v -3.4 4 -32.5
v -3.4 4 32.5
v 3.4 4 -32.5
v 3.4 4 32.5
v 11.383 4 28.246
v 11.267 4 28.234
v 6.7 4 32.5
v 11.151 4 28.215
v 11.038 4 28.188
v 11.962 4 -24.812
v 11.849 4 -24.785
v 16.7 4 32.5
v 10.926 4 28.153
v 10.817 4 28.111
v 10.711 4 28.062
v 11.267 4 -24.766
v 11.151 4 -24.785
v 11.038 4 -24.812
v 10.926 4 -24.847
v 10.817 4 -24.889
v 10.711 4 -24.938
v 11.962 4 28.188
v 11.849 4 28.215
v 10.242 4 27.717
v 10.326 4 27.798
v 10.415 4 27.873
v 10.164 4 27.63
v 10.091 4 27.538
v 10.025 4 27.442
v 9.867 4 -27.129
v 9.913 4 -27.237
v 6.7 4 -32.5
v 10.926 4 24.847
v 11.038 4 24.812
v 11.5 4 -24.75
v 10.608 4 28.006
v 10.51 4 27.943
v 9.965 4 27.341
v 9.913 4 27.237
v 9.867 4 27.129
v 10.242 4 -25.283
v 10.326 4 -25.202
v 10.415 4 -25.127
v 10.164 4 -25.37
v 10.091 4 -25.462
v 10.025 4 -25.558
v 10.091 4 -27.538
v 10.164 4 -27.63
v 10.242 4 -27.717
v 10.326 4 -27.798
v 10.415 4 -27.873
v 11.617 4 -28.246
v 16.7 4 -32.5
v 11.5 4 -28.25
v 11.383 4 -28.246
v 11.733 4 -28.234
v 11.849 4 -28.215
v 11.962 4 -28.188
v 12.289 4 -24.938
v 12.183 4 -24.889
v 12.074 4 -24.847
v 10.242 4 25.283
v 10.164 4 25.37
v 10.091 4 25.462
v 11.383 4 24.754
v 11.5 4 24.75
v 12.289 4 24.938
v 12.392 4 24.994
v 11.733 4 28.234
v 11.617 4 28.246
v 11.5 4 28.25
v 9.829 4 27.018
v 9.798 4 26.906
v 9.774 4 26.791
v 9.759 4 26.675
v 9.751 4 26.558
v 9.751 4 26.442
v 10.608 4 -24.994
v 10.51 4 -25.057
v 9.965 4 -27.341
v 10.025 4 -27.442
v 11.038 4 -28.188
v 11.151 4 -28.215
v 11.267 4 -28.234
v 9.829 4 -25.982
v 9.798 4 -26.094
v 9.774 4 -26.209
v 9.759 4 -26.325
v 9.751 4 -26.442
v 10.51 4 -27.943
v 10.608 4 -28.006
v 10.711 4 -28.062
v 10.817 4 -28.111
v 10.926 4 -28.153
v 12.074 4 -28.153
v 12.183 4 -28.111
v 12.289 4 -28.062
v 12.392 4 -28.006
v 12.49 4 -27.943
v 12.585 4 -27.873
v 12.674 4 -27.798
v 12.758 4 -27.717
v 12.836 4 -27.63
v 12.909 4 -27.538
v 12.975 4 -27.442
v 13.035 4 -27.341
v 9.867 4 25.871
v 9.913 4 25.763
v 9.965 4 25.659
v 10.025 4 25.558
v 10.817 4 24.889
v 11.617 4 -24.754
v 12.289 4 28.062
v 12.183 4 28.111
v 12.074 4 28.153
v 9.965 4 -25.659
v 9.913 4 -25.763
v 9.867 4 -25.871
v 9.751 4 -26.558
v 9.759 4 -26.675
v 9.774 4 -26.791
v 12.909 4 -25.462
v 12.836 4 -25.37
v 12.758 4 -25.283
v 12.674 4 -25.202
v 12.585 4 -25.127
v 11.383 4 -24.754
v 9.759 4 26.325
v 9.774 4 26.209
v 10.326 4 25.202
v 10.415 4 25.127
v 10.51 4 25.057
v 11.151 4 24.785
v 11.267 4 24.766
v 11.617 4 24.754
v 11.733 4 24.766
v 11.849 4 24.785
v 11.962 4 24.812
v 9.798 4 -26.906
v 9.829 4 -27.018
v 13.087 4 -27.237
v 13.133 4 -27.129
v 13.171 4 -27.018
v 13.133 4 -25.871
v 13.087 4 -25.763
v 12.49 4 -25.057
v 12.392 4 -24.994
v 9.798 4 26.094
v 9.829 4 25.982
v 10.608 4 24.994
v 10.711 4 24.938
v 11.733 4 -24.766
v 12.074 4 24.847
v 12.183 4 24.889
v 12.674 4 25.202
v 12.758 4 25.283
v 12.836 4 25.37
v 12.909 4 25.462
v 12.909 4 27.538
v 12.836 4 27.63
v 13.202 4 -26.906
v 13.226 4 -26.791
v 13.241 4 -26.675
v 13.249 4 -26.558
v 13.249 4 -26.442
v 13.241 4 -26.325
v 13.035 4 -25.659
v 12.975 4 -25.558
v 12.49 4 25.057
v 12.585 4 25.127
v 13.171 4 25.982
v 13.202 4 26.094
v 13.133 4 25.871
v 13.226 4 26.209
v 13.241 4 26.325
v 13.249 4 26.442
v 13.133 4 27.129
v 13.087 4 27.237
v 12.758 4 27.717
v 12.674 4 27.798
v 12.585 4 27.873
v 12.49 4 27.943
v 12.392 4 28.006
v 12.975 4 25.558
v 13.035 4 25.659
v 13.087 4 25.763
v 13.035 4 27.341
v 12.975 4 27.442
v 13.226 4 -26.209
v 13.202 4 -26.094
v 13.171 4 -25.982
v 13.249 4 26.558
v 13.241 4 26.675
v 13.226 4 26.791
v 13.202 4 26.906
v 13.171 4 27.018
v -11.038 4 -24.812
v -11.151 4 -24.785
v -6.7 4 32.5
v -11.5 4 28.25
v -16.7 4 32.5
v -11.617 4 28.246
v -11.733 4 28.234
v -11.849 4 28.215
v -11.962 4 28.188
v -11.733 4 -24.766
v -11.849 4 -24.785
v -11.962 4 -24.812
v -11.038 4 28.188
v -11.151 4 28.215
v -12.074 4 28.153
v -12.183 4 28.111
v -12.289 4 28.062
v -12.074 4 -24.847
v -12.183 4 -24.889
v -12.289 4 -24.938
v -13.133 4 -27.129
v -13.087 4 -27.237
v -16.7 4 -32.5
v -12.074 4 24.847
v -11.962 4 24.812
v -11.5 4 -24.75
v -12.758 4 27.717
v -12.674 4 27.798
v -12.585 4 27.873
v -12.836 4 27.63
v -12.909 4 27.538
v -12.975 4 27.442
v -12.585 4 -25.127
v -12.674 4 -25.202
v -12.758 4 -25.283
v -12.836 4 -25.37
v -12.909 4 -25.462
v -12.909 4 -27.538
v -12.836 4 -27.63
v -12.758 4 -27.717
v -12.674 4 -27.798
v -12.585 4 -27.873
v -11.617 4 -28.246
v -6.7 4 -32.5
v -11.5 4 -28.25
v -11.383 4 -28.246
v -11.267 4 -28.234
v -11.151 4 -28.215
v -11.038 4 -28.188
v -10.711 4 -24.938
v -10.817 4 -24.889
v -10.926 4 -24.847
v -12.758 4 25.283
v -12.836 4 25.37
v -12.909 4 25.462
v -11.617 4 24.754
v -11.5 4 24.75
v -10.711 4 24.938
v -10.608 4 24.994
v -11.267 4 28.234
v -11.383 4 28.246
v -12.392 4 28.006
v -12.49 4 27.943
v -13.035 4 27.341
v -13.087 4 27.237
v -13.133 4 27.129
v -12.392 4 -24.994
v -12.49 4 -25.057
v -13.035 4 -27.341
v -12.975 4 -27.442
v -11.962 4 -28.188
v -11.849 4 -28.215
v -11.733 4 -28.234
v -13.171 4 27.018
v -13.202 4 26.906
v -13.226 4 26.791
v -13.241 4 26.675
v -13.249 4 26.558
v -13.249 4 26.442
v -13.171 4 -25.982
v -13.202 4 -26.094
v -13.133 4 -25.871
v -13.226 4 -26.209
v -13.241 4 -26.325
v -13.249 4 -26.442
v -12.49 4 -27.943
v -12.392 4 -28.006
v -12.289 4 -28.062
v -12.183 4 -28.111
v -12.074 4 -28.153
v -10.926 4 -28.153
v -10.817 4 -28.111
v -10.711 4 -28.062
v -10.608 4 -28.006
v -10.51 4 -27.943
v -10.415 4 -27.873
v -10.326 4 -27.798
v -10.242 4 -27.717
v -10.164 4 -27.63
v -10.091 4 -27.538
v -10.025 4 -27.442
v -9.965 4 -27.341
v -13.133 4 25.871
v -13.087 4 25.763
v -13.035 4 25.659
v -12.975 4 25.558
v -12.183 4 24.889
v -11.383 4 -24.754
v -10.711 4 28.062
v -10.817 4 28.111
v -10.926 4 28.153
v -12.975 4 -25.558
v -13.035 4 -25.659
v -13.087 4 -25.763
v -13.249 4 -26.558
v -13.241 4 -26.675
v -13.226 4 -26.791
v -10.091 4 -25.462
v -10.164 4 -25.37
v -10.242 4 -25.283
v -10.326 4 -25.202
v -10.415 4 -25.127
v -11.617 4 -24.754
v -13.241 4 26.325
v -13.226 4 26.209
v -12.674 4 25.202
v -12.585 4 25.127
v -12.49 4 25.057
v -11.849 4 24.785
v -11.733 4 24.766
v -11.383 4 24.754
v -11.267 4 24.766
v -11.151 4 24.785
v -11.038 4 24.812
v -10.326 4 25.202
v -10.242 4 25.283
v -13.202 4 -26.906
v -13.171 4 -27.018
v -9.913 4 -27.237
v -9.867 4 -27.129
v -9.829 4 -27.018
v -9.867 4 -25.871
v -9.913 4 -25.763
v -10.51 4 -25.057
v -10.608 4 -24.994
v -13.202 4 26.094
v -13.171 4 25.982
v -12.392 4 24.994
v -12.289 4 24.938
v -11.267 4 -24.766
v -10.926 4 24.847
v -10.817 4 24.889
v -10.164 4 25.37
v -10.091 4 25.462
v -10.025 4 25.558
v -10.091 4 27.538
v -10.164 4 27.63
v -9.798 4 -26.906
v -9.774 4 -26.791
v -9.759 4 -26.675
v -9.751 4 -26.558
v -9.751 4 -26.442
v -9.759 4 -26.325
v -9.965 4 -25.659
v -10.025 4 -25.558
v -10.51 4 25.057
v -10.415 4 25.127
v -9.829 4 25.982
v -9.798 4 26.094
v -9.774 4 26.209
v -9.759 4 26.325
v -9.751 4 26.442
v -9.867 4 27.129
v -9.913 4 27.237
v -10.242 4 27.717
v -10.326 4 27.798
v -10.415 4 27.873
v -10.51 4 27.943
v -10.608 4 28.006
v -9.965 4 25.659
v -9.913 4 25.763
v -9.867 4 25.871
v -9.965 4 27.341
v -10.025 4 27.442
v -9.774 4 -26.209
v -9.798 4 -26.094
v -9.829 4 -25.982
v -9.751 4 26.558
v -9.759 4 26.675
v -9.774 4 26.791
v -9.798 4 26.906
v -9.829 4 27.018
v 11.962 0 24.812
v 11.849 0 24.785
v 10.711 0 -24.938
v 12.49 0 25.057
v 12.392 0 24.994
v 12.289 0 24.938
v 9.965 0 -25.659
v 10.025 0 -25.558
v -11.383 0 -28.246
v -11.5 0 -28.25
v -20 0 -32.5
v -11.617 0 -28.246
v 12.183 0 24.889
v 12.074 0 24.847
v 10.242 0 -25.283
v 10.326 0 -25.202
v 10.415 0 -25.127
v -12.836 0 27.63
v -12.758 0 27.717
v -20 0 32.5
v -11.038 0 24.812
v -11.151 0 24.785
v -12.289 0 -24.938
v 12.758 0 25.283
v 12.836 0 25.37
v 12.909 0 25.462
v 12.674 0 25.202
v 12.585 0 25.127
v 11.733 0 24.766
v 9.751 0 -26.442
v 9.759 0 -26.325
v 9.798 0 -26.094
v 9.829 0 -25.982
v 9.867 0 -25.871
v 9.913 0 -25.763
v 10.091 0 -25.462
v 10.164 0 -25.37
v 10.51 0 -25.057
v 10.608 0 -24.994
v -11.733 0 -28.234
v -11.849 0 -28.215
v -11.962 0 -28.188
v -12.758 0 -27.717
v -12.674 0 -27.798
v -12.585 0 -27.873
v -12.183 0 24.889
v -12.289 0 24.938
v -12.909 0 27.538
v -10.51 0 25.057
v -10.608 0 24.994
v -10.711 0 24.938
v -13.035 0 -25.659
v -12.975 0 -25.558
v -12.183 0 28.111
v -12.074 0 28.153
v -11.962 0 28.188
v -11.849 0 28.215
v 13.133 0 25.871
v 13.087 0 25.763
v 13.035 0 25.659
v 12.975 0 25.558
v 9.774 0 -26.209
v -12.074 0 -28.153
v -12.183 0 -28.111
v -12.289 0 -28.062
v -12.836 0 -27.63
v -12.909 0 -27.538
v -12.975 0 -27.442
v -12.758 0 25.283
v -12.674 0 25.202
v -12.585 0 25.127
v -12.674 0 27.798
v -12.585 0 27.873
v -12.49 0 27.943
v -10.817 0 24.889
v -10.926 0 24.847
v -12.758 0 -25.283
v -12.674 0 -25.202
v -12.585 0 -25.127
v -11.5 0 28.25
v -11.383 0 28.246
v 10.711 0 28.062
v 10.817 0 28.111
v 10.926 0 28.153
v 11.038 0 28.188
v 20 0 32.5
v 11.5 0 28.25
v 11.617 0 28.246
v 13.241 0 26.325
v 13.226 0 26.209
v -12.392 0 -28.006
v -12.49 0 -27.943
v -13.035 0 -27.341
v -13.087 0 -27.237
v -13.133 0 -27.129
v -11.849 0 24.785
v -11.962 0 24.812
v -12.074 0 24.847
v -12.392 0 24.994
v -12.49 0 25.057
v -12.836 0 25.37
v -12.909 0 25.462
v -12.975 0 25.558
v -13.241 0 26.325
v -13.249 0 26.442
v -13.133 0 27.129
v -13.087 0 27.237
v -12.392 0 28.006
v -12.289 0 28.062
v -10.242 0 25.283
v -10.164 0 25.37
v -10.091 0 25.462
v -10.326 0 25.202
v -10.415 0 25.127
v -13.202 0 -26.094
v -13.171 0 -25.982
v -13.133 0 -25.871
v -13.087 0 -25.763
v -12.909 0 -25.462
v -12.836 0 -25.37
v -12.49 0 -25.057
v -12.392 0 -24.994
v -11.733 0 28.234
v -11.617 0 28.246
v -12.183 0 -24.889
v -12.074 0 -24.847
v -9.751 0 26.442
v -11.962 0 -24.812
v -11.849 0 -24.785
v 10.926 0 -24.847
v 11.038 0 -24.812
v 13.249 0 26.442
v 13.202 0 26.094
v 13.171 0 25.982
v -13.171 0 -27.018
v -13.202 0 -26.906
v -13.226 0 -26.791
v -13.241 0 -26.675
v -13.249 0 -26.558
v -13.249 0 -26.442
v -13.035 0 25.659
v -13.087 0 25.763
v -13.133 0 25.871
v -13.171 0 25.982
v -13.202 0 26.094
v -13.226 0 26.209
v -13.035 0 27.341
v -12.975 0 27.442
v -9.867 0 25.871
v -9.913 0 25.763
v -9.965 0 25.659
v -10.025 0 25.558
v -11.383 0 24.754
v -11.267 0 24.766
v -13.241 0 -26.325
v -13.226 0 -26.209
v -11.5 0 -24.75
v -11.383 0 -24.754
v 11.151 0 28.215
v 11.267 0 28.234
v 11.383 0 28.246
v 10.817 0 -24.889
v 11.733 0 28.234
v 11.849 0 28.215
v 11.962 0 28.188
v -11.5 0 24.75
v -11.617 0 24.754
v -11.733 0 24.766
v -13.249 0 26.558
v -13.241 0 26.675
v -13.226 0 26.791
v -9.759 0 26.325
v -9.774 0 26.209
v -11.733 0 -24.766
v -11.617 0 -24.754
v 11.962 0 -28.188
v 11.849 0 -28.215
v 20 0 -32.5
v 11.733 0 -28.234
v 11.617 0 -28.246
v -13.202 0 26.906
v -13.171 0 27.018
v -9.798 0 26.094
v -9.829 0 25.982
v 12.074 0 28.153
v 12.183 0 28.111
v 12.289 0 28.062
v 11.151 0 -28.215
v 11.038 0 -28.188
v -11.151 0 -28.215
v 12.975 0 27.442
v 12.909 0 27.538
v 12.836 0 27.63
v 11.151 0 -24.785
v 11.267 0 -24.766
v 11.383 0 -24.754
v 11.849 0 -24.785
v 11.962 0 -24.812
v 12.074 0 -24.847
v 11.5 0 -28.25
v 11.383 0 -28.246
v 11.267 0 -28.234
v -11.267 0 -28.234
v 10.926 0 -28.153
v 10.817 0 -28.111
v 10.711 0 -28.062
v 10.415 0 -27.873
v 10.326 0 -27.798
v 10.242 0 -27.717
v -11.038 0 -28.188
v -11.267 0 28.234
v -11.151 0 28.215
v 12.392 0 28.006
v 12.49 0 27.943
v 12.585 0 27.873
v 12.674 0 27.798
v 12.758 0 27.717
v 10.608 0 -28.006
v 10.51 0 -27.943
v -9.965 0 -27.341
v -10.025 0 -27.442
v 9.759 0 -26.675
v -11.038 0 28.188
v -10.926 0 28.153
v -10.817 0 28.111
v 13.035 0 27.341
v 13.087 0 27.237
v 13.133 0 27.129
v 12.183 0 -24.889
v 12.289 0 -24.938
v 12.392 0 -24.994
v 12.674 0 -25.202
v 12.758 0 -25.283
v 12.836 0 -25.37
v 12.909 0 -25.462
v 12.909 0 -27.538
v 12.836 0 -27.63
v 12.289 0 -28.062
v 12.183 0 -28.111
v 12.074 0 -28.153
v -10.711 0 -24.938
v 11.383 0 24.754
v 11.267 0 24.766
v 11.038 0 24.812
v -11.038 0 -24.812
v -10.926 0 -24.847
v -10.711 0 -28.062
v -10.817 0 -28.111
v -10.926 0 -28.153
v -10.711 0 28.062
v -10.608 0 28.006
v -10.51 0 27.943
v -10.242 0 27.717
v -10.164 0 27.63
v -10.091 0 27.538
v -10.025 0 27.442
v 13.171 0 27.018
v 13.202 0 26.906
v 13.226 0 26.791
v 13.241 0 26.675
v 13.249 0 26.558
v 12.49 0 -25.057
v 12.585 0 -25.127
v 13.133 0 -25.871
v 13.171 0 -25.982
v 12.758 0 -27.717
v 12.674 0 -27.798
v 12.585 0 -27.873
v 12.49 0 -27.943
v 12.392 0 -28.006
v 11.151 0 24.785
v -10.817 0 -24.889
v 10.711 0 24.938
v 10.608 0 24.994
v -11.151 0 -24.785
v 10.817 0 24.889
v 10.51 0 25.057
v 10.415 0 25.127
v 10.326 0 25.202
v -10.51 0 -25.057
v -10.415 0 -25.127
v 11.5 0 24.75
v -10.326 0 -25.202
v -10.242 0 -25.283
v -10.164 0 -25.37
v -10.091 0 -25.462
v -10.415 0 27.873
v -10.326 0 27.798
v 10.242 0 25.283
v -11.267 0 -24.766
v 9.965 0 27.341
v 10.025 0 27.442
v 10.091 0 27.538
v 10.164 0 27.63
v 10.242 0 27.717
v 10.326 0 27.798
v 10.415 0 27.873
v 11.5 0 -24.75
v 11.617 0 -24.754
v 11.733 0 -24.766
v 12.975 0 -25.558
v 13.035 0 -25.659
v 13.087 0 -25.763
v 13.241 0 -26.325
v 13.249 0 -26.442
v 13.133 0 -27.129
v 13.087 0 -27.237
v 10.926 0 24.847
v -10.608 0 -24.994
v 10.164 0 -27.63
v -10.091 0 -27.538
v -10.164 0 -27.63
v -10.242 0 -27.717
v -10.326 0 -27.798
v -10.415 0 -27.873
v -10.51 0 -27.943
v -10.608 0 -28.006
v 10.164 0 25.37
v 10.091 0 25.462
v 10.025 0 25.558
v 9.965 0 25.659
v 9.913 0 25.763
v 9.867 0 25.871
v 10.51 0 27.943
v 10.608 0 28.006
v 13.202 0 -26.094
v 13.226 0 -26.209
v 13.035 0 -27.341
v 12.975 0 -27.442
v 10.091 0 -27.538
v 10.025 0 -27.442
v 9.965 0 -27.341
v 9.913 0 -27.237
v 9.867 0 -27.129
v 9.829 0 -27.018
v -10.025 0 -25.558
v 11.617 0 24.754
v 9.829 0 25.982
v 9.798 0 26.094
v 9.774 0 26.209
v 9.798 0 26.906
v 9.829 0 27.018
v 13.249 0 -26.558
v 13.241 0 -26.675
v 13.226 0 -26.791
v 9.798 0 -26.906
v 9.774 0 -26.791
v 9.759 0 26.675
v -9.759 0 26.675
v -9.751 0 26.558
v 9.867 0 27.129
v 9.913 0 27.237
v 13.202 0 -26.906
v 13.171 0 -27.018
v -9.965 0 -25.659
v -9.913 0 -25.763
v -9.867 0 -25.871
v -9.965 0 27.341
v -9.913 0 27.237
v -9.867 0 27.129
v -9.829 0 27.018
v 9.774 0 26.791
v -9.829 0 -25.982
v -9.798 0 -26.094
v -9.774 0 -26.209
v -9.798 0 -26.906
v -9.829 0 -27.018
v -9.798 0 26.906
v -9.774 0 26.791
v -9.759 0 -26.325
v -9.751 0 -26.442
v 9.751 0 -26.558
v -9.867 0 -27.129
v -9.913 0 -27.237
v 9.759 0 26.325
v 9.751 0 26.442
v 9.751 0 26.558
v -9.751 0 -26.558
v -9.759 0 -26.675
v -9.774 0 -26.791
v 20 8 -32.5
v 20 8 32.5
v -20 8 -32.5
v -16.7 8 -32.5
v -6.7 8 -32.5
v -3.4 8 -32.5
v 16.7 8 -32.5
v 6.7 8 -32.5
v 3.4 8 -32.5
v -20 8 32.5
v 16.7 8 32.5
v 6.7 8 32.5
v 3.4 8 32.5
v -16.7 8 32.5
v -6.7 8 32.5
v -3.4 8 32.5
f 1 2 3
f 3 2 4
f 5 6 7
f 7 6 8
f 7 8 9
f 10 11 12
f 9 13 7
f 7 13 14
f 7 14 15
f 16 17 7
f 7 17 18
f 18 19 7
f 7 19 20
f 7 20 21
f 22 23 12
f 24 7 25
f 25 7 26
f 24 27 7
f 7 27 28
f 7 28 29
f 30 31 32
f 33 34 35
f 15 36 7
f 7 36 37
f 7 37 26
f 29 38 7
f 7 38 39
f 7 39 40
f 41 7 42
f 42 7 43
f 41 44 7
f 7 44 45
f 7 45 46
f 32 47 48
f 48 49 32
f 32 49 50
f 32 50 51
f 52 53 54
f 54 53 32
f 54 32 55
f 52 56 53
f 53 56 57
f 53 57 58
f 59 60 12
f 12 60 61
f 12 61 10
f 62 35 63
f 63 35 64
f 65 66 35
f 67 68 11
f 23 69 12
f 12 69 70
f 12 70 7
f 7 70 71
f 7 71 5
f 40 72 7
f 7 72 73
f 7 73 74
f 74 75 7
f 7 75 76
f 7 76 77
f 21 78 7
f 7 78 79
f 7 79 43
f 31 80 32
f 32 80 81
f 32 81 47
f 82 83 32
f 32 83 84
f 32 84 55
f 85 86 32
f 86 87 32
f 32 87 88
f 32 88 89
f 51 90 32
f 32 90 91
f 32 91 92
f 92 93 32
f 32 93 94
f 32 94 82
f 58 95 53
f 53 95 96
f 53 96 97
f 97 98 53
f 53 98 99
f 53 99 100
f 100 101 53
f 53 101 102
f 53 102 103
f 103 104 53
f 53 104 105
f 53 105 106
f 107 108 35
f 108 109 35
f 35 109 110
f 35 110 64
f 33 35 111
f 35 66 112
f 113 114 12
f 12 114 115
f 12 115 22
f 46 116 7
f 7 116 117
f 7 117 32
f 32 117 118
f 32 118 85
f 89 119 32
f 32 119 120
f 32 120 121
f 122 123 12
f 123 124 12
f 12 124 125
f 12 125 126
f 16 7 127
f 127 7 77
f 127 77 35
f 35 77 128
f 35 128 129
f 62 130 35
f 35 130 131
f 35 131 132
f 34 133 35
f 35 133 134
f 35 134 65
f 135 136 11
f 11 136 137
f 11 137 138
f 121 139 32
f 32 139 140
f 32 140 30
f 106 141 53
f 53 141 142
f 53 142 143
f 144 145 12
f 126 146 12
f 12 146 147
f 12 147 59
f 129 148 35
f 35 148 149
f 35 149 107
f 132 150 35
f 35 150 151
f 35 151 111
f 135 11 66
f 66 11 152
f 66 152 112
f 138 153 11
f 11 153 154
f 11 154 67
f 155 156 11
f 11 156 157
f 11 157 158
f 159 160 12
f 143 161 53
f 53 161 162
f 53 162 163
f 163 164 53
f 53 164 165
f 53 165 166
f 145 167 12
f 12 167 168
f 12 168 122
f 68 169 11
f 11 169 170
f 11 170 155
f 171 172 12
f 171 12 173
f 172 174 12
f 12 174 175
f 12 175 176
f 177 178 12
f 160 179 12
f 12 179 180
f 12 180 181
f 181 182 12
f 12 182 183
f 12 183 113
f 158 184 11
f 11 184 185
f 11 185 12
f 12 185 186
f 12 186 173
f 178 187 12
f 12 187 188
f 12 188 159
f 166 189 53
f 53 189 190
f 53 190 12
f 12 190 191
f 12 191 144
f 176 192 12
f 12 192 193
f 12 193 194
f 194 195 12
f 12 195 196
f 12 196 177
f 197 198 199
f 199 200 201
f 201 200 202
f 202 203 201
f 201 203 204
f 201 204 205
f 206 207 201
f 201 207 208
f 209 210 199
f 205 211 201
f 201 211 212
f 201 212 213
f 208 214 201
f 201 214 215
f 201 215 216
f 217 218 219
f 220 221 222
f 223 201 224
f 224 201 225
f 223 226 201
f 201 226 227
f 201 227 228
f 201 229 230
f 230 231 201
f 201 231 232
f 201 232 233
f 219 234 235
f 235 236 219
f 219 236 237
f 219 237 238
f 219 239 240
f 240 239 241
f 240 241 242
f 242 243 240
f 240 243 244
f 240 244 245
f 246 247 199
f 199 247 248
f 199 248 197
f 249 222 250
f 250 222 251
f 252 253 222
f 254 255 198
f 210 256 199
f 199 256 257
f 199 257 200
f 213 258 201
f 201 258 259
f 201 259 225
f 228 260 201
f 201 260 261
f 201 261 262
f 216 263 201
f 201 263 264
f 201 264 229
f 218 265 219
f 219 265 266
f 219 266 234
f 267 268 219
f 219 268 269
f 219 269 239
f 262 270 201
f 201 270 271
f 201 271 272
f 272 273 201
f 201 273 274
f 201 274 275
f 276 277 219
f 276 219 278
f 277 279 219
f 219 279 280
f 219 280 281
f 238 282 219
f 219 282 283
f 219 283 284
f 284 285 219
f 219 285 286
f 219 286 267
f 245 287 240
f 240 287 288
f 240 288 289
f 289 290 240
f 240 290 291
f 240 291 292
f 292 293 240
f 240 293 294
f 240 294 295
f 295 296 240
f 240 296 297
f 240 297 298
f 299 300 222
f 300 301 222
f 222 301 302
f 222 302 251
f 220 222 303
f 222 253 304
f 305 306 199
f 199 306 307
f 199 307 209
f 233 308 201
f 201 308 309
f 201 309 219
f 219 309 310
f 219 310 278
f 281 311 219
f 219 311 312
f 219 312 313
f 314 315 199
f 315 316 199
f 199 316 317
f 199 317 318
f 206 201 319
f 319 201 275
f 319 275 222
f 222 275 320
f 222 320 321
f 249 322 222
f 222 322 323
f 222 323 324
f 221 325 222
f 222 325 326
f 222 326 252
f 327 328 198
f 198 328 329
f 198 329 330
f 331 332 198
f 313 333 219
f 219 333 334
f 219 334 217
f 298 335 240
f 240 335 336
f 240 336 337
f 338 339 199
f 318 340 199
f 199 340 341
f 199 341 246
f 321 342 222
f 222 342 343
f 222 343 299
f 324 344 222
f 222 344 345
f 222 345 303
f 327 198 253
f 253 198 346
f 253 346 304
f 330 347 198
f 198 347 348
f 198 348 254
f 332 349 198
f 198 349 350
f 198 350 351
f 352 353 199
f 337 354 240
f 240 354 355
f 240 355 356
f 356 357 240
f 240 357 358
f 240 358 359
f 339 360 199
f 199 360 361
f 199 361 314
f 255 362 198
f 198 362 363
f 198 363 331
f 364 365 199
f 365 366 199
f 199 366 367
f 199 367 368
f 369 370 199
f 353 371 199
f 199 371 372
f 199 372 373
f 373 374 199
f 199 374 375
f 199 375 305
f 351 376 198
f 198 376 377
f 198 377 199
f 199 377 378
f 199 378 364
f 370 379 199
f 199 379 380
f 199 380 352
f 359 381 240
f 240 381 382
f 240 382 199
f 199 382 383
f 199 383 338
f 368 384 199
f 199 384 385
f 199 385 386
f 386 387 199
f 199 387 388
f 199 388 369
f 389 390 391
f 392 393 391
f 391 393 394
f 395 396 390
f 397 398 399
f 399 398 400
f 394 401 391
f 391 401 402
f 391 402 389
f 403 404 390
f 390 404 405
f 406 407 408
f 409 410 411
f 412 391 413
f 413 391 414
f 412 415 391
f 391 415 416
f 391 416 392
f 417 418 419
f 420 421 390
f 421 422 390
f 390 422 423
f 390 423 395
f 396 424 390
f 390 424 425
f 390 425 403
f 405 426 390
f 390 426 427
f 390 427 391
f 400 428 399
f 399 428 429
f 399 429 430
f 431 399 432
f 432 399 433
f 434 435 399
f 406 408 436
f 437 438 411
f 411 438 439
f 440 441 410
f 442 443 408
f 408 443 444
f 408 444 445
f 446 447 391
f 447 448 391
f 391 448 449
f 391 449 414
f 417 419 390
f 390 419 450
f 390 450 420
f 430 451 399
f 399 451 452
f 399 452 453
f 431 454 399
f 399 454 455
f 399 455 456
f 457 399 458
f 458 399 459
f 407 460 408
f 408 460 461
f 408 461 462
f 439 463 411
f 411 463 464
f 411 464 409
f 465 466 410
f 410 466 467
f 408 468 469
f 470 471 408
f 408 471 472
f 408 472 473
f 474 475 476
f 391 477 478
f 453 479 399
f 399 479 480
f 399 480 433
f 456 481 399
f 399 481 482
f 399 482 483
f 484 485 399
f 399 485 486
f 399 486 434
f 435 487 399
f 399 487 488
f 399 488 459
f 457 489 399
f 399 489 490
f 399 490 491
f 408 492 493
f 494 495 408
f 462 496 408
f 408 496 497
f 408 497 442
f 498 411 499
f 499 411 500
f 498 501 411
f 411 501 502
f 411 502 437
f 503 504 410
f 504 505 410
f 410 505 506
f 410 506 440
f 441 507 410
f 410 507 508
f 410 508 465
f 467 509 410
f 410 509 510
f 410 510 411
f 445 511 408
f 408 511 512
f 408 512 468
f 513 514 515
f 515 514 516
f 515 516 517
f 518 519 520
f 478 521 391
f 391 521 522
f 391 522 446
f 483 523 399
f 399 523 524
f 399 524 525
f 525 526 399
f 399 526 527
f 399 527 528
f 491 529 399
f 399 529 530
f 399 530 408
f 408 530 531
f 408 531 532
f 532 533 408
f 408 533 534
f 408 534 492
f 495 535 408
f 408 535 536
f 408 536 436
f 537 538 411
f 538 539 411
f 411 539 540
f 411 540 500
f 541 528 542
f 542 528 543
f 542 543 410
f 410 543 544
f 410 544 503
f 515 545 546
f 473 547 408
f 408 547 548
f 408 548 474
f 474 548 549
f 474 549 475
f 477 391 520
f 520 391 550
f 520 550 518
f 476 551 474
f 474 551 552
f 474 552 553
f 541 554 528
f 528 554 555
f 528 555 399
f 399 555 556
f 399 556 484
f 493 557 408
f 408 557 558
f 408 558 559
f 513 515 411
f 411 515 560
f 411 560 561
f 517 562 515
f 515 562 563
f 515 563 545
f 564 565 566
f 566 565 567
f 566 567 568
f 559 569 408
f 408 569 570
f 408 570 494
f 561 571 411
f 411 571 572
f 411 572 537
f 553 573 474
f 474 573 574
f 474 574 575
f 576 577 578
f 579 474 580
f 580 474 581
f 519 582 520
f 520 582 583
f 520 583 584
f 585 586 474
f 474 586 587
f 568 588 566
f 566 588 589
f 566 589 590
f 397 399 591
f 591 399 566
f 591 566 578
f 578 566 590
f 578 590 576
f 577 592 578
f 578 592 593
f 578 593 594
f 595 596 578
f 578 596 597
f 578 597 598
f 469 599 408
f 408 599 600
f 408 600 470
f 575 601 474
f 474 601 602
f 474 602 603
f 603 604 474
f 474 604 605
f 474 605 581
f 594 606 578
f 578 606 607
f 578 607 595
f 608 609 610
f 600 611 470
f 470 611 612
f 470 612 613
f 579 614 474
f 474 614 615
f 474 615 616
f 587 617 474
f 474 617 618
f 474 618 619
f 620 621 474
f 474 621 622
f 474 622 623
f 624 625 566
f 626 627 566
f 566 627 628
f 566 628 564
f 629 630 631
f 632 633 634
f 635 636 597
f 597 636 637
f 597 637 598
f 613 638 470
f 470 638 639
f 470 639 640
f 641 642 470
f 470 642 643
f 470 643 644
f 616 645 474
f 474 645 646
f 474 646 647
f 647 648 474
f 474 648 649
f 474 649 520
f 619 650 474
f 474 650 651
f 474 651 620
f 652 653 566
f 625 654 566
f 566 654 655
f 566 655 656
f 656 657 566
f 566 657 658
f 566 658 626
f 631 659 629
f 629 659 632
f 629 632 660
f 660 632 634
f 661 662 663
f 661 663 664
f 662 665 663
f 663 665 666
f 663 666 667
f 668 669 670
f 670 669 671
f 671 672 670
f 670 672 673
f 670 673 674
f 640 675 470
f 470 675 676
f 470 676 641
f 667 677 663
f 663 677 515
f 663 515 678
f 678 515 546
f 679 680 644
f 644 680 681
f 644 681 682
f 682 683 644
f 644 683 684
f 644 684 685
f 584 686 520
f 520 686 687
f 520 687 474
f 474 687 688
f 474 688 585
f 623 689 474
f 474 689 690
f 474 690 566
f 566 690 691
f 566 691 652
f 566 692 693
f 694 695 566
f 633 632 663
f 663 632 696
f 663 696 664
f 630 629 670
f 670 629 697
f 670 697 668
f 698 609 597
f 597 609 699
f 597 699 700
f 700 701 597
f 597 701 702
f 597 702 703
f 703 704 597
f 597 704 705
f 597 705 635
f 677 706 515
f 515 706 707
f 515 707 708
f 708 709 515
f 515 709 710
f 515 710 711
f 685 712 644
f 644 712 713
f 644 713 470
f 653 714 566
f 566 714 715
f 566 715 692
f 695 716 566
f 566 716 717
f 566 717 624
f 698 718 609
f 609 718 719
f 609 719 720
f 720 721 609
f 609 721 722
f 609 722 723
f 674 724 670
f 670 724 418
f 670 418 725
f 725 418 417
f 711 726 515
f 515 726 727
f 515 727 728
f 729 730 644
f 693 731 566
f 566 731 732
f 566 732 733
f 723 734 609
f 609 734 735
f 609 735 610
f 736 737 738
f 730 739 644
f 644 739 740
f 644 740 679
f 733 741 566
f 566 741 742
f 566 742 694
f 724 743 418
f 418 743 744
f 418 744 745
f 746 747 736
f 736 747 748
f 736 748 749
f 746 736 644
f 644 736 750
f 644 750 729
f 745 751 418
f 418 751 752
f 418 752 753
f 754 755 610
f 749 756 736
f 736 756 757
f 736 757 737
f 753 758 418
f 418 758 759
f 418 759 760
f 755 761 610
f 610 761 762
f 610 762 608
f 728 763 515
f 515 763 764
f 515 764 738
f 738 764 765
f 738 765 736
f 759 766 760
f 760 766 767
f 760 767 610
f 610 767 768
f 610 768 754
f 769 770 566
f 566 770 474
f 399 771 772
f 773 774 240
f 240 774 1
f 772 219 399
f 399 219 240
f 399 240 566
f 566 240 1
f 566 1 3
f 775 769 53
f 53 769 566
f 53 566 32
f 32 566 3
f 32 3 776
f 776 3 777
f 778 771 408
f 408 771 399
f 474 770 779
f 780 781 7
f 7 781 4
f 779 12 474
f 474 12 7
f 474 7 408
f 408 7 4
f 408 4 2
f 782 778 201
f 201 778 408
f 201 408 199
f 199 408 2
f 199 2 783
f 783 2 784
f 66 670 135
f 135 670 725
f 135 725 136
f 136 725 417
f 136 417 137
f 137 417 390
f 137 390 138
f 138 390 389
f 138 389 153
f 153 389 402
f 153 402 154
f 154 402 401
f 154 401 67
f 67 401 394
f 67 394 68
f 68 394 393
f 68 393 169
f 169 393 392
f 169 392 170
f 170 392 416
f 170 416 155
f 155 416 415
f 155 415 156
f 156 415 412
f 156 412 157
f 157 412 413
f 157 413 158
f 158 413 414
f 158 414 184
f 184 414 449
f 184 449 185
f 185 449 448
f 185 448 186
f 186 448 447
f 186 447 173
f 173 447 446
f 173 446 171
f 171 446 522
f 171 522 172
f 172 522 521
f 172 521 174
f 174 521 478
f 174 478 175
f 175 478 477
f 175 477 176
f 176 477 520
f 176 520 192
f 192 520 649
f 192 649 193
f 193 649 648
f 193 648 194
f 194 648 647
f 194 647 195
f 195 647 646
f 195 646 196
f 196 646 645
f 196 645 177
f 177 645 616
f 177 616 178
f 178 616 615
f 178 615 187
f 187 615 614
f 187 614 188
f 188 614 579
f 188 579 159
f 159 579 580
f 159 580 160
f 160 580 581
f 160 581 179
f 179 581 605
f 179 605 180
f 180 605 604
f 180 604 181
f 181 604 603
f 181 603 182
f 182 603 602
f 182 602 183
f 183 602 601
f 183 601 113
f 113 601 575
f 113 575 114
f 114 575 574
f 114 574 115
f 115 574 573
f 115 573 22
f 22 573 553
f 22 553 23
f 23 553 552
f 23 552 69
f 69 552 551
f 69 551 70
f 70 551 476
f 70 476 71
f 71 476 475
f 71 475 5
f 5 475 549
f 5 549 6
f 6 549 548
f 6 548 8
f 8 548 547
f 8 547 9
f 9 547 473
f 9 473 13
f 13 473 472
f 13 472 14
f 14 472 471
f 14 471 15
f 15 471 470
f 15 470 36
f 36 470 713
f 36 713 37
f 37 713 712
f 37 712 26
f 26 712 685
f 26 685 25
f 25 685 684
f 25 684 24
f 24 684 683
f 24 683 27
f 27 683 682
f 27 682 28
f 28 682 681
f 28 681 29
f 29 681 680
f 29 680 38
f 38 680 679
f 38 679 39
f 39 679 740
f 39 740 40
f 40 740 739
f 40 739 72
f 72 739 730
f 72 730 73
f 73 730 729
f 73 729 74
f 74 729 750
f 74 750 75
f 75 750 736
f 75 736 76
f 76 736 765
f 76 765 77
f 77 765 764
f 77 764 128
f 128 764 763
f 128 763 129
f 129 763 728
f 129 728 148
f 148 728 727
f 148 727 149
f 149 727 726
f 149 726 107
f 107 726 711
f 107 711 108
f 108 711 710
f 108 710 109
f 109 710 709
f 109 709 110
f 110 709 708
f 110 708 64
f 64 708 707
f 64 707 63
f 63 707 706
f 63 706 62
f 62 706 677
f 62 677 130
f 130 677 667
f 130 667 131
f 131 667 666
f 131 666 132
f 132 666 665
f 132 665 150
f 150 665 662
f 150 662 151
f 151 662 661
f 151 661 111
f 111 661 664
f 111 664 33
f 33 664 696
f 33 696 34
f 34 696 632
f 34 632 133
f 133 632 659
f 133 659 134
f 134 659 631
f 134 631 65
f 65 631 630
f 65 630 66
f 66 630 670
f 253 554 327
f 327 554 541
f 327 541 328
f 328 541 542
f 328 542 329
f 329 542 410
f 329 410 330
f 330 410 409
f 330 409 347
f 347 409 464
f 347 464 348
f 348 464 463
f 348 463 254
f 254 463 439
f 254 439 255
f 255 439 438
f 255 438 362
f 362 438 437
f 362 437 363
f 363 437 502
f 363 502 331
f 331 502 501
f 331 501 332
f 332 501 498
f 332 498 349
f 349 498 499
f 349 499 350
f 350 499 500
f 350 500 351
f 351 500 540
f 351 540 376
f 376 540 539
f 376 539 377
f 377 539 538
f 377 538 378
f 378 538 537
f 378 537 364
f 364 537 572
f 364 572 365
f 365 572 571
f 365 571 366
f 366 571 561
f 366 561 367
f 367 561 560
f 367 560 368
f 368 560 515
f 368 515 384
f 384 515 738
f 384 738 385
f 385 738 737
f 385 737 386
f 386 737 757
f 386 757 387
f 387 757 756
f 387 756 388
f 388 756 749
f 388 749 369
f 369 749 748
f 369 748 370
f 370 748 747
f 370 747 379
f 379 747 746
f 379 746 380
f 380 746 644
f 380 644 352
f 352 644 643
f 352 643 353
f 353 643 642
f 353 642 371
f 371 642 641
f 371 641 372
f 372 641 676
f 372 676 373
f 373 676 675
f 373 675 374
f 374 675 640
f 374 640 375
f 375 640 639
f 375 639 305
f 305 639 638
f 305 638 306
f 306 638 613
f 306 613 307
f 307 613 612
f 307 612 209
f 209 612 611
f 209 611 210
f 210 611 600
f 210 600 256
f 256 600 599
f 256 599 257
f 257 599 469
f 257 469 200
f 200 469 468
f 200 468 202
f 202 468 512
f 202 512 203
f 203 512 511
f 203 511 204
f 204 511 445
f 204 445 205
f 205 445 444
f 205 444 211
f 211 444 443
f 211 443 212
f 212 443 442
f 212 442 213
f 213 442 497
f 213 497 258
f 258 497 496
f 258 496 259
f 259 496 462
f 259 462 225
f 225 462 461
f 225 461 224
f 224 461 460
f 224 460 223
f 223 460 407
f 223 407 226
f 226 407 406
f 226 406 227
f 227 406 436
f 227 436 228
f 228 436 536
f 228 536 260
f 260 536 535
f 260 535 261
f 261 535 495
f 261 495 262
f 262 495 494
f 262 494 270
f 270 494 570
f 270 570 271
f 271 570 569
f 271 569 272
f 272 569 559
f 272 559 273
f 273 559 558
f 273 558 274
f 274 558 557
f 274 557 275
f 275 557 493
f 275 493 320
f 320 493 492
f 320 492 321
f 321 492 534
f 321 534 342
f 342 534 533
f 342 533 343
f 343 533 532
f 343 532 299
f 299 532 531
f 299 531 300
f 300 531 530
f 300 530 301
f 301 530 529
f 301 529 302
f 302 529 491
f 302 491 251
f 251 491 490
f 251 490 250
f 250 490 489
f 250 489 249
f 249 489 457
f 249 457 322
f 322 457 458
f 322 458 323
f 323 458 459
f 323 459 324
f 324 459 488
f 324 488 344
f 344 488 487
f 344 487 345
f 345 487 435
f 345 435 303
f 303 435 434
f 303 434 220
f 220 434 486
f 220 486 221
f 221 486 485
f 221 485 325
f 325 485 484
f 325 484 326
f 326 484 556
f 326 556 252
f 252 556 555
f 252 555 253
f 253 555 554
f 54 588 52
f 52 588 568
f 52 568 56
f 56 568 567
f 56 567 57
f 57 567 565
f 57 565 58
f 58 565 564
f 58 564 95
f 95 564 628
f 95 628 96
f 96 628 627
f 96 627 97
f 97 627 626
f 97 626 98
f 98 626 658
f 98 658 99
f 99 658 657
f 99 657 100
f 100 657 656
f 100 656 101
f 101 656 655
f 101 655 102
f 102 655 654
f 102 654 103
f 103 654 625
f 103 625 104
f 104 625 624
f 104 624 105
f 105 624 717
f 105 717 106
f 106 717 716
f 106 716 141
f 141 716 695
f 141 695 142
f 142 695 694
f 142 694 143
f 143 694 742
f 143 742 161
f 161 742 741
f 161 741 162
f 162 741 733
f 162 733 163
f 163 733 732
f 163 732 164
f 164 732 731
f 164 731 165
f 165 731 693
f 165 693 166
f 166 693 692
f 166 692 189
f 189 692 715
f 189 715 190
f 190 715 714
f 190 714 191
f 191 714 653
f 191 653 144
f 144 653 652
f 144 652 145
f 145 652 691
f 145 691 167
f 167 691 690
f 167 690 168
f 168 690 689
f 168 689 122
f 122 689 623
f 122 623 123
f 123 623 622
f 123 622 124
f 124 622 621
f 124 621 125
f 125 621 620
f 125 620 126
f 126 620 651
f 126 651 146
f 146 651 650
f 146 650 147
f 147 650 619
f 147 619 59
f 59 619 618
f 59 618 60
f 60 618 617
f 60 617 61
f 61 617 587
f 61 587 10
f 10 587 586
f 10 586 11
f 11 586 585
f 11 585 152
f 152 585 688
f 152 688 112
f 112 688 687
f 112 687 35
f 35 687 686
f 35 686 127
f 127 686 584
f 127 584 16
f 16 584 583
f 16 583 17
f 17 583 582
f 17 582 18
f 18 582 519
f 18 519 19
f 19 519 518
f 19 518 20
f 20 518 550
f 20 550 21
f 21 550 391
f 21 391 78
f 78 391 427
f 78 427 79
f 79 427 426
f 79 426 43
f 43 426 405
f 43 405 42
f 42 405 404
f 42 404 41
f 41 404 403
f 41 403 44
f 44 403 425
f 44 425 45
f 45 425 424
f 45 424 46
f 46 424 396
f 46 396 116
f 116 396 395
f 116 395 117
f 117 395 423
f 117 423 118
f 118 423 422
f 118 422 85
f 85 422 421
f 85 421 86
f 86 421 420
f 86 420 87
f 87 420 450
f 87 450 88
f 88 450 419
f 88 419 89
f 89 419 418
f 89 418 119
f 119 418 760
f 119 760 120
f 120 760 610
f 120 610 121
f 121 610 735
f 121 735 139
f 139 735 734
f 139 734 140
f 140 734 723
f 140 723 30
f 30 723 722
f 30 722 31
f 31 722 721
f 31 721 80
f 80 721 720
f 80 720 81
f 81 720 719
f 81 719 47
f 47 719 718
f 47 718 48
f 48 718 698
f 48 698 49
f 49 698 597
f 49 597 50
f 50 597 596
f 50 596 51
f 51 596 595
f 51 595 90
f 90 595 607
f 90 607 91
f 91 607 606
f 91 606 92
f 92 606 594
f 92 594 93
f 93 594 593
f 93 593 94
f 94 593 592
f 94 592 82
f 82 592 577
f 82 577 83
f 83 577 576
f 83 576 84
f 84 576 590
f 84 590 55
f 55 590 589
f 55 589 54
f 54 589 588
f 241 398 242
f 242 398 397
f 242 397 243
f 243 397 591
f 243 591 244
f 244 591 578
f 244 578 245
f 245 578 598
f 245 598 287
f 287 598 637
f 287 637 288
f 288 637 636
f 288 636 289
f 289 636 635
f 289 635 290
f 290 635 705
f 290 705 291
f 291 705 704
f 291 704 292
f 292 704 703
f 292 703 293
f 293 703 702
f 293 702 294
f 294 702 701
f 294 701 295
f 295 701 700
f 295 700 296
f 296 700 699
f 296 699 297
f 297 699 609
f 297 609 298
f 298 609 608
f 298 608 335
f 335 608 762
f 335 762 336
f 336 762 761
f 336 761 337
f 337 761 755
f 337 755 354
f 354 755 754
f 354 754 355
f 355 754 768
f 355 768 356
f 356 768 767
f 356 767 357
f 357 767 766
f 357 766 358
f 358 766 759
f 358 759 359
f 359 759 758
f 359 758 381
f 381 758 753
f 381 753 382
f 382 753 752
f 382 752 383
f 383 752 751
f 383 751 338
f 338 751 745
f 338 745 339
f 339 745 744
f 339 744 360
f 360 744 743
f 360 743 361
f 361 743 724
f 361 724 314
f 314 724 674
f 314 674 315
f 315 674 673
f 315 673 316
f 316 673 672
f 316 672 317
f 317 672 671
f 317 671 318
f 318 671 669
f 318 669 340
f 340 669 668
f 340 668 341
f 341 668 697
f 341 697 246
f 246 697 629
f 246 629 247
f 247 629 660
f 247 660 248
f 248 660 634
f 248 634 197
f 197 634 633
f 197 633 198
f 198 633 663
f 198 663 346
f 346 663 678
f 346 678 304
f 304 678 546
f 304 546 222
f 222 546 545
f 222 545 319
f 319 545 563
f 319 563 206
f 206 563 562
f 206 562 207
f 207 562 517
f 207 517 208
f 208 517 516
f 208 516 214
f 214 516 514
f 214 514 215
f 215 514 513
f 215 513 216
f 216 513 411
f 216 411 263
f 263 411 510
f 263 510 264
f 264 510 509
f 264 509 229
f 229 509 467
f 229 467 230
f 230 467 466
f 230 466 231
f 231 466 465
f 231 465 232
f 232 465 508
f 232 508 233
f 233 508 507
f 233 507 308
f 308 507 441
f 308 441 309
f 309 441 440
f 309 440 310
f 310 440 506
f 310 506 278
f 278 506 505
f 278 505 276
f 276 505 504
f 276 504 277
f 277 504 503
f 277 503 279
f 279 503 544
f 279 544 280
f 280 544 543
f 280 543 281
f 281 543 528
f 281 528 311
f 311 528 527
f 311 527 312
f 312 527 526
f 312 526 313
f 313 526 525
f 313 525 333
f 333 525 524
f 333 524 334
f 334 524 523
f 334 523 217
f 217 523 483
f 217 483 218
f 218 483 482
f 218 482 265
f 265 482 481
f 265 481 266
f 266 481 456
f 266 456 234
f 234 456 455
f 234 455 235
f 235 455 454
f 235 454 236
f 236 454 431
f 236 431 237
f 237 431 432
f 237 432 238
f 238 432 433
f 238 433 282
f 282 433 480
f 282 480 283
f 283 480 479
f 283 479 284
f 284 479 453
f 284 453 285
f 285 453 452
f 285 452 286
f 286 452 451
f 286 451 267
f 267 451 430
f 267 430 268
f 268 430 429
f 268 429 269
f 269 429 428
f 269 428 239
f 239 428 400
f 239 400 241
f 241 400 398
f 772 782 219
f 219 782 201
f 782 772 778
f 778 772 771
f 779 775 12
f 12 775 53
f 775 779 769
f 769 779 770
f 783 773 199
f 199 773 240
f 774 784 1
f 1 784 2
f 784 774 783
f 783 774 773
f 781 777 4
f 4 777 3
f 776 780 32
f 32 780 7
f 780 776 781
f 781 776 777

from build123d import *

# Parameters (mm, degrees)
SKETCH1_W           = 40
SKETCH1_H           = 65
SKETCH1_R           = 1.75
BOSS_EXTRUDE1_DEPTH = 4
SKETCH2_W           = 3.3
SKETCH2_H           = 65
BOSS_EXTRUDE2_DEPTH = 4


with BuildPart() as part:
    # Sketch1 → Boss-Extrude1 (new body)
    with BuildSketch(Plane(origin=(0, 0, 0), x_dir=(1, 0, 0), z_dir=(0, 1, 0))):
        Rectangle(SKETCH1_W, SKETCH1_H)
        with Locations((11.5, -26.5)):
            Circle(SKETCH1_R, mode=Mode.SUBTRACT)
        with Locations((-11.5, -26.5)):
            Circle(SKETCH1_R, mode=Mode.SUBTRACT)
        with Locations((11.5, 26.5)):
            Circle(SKETCH1_R, mode=Mode.SUBTRACT)
        with Locations((-11.5, 26.5)):
            Circle(SKETCH1_R, mode=Mode.SUBTRACT)
    extrude(amount=BOSS_EXTRUDE1_DEPTH)

    # Sketch2 → Boss-Extrude2 (add)
    with BuildSketch(Plane(origin=(0, 4, 0), x_dir=(1, 0, 0), z_dir=(0, 1, 0))):
        with Locations((-18.35, 0)):
            Rectangle(SKETCH2_W, SKETCH2_H)
        with Locations((18.35, 0)):
            Rectangle(SKETCH2_W, SKETCH2_H)
        with Locations((-5.05, 0)):
            Rectangle(SKETCH2_W, SKETCH2_H)
        with Locations((5.05, 0)):
            Rectangle(SKETCH2_W, SKETCH2_H)
    extrude(amount=BOSS_EXTRUDE2_DEPTH)


solid = part.part
